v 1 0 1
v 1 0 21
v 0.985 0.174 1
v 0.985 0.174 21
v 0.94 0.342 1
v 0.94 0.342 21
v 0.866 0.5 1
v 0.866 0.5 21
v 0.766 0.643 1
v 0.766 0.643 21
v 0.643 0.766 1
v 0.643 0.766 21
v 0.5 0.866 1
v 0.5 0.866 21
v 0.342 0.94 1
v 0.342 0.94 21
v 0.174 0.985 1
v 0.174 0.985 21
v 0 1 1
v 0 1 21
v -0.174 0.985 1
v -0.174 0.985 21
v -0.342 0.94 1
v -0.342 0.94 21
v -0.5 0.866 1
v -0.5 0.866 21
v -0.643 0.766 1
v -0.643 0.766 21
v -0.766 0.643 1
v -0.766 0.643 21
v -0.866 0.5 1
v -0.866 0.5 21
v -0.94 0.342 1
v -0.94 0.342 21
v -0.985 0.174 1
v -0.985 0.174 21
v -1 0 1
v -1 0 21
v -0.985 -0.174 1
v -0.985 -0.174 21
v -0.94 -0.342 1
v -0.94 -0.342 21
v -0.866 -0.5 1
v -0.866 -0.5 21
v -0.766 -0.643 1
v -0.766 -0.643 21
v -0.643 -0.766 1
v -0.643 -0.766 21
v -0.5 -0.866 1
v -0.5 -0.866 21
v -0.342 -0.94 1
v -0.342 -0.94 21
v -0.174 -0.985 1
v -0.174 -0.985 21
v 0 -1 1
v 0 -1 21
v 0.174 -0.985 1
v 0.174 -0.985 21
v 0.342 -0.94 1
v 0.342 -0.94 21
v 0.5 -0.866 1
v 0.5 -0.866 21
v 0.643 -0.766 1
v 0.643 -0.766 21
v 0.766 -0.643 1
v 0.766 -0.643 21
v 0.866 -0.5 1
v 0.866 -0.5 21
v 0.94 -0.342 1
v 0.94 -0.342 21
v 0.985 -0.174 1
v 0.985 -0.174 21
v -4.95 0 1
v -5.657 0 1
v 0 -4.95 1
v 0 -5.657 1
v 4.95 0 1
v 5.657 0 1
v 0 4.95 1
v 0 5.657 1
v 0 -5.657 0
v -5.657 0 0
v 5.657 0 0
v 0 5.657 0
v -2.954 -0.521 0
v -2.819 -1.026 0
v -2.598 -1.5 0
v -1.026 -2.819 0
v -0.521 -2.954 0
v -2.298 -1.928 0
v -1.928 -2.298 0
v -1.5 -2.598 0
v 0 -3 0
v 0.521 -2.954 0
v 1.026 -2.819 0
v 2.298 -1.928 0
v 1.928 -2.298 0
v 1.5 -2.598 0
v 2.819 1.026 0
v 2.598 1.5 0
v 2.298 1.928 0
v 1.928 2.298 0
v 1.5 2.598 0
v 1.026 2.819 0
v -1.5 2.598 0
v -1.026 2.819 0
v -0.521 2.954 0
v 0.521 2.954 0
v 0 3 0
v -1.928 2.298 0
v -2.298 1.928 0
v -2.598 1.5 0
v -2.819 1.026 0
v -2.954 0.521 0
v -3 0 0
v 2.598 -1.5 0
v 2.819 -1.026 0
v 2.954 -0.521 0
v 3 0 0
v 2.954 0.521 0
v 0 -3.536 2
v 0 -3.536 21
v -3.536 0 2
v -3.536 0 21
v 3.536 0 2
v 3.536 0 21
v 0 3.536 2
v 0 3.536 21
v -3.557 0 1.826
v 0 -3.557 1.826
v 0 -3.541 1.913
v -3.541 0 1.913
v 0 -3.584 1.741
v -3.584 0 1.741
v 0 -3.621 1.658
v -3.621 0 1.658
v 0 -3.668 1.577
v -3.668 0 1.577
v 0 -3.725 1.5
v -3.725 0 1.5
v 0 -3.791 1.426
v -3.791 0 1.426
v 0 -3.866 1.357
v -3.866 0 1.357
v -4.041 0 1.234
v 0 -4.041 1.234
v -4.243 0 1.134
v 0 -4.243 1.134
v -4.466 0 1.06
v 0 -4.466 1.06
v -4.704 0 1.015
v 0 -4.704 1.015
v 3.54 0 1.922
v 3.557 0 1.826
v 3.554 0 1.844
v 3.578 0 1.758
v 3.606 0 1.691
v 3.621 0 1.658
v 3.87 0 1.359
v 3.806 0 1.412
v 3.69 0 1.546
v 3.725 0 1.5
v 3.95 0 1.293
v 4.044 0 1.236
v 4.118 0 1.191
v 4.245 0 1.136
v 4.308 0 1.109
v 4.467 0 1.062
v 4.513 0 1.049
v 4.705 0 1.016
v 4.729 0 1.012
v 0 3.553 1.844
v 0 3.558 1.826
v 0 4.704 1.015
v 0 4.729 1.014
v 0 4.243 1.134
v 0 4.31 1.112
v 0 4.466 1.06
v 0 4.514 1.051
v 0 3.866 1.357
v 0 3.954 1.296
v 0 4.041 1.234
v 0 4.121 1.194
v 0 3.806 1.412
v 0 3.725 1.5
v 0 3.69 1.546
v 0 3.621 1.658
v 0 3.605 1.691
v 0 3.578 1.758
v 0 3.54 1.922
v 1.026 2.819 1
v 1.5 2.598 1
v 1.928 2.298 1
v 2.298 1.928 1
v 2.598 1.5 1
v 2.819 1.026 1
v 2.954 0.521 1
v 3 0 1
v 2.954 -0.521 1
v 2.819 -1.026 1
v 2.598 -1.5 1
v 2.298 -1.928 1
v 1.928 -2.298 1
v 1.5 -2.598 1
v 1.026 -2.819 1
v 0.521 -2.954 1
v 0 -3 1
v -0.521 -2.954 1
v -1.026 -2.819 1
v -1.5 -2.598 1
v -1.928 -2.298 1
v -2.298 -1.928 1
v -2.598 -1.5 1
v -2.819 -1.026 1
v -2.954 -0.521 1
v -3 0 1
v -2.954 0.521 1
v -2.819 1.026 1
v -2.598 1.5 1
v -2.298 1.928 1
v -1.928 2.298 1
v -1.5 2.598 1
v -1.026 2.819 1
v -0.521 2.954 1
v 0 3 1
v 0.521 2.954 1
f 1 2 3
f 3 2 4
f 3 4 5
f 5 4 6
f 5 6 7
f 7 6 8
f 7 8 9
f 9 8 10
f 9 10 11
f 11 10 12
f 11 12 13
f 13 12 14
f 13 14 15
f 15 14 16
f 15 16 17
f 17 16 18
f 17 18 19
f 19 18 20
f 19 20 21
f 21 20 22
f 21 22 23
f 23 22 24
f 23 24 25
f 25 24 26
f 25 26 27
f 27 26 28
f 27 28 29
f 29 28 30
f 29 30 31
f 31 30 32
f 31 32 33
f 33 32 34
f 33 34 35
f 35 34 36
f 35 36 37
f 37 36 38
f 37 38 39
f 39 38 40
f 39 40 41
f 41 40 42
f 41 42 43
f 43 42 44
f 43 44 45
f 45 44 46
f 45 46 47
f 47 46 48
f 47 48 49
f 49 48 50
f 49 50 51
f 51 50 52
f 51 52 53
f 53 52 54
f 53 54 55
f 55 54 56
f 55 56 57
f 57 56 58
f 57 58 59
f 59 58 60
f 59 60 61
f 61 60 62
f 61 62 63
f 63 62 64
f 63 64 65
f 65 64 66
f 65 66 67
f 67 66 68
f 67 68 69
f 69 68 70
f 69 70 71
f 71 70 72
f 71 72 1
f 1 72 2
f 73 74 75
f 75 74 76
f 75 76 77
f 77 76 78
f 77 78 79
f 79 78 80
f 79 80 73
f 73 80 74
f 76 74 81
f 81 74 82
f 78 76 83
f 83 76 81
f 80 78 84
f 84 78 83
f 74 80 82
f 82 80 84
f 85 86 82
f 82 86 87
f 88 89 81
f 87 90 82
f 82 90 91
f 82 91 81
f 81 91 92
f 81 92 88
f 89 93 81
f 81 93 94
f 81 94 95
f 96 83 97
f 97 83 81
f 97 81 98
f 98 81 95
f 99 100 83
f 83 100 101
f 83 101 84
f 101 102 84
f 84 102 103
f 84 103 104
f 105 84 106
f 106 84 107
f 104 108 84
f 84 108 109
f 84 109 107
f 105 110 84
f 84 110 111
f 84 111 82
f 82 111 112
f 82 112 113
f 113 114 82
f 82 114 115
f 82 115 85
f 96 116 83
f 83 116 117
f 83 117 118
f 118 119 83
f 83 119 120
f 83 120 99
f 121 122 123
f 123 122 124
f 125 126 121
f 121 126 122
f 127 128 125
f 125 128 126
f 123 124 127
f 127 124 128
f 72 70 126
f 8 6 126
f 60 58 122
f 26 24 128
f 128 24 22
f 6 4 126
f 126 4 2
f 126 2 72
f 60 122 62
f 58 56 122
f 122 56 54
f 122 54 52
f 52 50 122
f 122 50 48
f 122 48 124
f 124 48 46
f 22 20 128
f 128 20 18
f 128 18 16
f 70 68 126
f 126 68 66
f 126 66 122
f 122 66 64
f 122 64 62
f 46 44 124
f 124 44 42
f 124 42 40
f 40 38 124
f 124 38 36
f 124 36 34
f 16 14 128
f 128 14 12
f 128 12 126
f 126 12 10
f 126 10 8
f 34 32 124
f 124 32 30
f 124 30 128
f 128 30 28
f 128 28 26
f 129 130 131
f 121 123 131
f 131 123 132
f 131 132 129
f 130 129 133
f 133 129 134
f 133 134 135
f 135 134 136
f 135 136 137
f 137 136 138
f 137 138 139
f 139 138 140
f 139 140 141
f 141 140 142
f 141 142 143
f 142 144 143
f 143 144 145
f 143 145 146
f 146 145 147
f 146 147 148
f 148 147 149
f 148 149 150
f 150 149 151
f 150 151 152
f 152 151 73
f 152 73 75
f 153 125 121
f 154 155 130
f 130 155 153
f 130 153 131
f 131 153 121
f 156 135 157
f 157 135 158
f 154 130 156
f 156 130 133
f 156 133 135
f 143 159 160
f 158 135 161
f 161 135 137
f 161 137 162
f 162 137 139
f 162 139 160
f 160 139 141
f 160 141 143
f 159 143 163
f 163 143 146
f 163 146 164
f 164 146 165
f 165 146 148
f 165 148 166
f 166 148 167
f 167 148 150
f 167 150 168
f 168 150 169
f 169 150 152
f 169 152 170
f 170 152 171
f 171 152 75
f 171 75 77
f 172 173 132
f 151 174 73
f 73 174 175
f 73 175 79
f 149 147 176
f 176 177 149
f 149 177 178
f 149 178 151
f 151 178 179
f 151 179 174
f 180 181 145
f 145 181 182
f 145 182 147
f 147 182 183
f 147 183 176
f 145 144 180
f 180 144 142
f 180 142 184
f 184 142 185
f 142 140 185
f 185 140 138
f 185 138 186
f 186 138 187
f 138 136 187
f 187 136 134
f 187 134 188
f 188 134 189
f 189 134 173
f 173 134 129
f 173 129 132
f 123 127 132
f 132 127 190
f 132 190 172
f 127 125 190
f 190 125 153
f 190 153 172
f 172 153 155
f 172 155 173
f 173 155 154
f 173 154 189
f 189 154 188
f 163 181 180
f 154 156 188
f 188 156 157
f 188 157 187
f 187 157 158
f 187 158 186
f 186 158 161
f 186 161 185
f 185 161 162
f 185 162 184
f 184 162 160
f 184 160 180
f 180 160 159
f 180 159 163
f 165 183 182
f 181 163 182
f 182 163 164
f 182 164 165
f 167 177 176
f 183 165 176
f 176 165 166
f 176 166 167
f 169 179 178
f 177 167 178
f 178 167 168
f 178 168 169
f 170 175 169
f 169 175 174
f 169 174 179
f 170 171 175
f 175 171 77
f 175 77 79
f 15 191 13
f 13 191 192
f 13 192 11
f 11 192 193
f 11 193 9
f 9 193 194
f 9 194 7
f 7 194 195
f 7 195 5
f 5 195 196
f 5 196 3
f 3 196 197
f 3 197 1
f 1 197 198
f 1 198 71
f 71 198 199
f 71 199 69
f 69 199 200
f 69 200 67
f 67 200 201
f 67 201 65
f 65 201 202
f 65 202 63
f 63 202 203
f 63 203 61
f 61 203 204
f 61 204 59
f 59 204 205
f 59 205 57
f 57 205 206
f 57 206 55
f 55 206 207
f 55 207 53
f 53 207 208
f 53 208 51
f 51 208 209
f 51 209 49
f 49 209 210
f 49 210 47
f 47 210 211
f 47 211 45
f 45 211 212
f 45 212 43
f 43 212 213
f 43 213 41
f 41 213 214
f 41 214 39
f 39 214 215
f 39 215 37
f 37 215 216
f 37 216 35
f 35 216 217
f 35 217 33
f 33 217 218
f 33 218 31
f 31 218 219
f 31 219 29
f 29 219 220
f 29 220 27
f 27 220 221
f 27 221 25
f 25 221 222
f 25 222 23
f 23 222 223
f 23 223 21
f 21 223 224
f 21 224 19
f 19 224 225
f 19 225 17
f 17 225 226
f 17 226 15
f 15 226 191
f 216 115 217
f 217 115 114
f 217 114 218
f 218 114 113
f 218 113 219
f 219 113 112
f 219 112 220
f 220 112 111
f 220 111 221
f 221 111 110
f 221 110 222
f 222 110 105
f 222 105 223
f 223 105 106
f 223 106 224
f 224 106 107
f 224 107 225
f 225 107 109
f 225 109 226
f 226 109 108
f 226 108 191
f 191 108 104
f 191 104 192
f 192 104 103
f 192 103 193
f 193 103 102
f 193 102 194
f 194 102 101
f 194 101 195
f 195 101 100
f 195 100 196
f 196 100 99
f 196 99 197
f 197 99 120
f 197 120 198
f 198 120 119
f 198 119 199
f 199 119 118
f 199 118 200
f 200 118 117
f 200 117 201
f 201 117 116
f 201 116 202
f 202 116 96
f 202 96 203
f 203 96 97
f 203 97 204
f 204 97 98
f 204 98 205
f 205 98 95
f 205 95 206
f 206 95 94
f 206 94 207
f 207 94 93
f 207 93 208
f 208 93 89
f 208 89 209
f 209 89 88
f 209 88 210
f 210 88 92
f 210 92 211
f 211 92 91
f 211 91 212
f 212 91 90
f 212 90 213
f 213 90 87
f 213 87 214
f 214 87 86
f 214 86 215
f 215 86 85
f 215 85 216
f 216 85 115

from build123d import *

# Parameters (mm, degrees)
BASE_DEPTH          = 1
BOSS_EXTRUDE2_DEPTH = 20
SKETCH3_R           = 1
CUT_EXTRUDE1_DEPTH  = 23.472205054
FILLET1_R           = 1
SKETCH4_R           = 3
CUT_EXTRUDE2_DEPTH  = 1


with BuildPart() as part:
    # Sketch1 → Base (new body)
    with BuildSketch(Plane.XY):
        Polygon((-5.656854249, 0), (0, 5.656854249), (5.656854249, 0), (0, -5.656854249), align=None)
    extrude(amount=BASE_DEPTH)

    # Sketch2 → Boss-Extrude2 (add)
    with BuildSketch(Plane.XY.offset(1)):
        Polygon((0, -3.535533906), (3.535533906, 0), (0, 3.535533906), (-3.535533906, 0), align=None)
    extrude(amount=BOSS_EXTRUDE2_DEPTH)

    # Sketch3 → Cut-Extrude1 (cut, through all)
    with BuildSketch(Plane.XY.offset(21)):
        Circle(SKETCH3_R)
    extrude(amount=-CUT_EXTRUDE1_DEPTH, mode=Mode.SUBTRACT)

    # Fillet1
    fillet1_edges = [part.edges().sort_by_distance(p)[0] for p in [
        (-1.767766953, -1.767766953, 1),
        (1.767766953, -1.767766953, 1),
        (1.767766953, 1.767766953, 1),
        (-1.767766953, 1.767766953, 1),
    ]]
    fillet(fillet1_edges, radius=FILLET1_R)

    # Sketch4 → Cut-Extrude2 (cut)
    with BuildSketch(Plane(origin=(0, 0, 0), x_dir=(-1, 0, 0), z_dir=(0, 0, -1))):
        Circle(SKETCH4_R)
    extrude(amount=-CUT_EXTRUDE2_DEPTH, mode=Mode.SUBTRACT)


solid = part.part
